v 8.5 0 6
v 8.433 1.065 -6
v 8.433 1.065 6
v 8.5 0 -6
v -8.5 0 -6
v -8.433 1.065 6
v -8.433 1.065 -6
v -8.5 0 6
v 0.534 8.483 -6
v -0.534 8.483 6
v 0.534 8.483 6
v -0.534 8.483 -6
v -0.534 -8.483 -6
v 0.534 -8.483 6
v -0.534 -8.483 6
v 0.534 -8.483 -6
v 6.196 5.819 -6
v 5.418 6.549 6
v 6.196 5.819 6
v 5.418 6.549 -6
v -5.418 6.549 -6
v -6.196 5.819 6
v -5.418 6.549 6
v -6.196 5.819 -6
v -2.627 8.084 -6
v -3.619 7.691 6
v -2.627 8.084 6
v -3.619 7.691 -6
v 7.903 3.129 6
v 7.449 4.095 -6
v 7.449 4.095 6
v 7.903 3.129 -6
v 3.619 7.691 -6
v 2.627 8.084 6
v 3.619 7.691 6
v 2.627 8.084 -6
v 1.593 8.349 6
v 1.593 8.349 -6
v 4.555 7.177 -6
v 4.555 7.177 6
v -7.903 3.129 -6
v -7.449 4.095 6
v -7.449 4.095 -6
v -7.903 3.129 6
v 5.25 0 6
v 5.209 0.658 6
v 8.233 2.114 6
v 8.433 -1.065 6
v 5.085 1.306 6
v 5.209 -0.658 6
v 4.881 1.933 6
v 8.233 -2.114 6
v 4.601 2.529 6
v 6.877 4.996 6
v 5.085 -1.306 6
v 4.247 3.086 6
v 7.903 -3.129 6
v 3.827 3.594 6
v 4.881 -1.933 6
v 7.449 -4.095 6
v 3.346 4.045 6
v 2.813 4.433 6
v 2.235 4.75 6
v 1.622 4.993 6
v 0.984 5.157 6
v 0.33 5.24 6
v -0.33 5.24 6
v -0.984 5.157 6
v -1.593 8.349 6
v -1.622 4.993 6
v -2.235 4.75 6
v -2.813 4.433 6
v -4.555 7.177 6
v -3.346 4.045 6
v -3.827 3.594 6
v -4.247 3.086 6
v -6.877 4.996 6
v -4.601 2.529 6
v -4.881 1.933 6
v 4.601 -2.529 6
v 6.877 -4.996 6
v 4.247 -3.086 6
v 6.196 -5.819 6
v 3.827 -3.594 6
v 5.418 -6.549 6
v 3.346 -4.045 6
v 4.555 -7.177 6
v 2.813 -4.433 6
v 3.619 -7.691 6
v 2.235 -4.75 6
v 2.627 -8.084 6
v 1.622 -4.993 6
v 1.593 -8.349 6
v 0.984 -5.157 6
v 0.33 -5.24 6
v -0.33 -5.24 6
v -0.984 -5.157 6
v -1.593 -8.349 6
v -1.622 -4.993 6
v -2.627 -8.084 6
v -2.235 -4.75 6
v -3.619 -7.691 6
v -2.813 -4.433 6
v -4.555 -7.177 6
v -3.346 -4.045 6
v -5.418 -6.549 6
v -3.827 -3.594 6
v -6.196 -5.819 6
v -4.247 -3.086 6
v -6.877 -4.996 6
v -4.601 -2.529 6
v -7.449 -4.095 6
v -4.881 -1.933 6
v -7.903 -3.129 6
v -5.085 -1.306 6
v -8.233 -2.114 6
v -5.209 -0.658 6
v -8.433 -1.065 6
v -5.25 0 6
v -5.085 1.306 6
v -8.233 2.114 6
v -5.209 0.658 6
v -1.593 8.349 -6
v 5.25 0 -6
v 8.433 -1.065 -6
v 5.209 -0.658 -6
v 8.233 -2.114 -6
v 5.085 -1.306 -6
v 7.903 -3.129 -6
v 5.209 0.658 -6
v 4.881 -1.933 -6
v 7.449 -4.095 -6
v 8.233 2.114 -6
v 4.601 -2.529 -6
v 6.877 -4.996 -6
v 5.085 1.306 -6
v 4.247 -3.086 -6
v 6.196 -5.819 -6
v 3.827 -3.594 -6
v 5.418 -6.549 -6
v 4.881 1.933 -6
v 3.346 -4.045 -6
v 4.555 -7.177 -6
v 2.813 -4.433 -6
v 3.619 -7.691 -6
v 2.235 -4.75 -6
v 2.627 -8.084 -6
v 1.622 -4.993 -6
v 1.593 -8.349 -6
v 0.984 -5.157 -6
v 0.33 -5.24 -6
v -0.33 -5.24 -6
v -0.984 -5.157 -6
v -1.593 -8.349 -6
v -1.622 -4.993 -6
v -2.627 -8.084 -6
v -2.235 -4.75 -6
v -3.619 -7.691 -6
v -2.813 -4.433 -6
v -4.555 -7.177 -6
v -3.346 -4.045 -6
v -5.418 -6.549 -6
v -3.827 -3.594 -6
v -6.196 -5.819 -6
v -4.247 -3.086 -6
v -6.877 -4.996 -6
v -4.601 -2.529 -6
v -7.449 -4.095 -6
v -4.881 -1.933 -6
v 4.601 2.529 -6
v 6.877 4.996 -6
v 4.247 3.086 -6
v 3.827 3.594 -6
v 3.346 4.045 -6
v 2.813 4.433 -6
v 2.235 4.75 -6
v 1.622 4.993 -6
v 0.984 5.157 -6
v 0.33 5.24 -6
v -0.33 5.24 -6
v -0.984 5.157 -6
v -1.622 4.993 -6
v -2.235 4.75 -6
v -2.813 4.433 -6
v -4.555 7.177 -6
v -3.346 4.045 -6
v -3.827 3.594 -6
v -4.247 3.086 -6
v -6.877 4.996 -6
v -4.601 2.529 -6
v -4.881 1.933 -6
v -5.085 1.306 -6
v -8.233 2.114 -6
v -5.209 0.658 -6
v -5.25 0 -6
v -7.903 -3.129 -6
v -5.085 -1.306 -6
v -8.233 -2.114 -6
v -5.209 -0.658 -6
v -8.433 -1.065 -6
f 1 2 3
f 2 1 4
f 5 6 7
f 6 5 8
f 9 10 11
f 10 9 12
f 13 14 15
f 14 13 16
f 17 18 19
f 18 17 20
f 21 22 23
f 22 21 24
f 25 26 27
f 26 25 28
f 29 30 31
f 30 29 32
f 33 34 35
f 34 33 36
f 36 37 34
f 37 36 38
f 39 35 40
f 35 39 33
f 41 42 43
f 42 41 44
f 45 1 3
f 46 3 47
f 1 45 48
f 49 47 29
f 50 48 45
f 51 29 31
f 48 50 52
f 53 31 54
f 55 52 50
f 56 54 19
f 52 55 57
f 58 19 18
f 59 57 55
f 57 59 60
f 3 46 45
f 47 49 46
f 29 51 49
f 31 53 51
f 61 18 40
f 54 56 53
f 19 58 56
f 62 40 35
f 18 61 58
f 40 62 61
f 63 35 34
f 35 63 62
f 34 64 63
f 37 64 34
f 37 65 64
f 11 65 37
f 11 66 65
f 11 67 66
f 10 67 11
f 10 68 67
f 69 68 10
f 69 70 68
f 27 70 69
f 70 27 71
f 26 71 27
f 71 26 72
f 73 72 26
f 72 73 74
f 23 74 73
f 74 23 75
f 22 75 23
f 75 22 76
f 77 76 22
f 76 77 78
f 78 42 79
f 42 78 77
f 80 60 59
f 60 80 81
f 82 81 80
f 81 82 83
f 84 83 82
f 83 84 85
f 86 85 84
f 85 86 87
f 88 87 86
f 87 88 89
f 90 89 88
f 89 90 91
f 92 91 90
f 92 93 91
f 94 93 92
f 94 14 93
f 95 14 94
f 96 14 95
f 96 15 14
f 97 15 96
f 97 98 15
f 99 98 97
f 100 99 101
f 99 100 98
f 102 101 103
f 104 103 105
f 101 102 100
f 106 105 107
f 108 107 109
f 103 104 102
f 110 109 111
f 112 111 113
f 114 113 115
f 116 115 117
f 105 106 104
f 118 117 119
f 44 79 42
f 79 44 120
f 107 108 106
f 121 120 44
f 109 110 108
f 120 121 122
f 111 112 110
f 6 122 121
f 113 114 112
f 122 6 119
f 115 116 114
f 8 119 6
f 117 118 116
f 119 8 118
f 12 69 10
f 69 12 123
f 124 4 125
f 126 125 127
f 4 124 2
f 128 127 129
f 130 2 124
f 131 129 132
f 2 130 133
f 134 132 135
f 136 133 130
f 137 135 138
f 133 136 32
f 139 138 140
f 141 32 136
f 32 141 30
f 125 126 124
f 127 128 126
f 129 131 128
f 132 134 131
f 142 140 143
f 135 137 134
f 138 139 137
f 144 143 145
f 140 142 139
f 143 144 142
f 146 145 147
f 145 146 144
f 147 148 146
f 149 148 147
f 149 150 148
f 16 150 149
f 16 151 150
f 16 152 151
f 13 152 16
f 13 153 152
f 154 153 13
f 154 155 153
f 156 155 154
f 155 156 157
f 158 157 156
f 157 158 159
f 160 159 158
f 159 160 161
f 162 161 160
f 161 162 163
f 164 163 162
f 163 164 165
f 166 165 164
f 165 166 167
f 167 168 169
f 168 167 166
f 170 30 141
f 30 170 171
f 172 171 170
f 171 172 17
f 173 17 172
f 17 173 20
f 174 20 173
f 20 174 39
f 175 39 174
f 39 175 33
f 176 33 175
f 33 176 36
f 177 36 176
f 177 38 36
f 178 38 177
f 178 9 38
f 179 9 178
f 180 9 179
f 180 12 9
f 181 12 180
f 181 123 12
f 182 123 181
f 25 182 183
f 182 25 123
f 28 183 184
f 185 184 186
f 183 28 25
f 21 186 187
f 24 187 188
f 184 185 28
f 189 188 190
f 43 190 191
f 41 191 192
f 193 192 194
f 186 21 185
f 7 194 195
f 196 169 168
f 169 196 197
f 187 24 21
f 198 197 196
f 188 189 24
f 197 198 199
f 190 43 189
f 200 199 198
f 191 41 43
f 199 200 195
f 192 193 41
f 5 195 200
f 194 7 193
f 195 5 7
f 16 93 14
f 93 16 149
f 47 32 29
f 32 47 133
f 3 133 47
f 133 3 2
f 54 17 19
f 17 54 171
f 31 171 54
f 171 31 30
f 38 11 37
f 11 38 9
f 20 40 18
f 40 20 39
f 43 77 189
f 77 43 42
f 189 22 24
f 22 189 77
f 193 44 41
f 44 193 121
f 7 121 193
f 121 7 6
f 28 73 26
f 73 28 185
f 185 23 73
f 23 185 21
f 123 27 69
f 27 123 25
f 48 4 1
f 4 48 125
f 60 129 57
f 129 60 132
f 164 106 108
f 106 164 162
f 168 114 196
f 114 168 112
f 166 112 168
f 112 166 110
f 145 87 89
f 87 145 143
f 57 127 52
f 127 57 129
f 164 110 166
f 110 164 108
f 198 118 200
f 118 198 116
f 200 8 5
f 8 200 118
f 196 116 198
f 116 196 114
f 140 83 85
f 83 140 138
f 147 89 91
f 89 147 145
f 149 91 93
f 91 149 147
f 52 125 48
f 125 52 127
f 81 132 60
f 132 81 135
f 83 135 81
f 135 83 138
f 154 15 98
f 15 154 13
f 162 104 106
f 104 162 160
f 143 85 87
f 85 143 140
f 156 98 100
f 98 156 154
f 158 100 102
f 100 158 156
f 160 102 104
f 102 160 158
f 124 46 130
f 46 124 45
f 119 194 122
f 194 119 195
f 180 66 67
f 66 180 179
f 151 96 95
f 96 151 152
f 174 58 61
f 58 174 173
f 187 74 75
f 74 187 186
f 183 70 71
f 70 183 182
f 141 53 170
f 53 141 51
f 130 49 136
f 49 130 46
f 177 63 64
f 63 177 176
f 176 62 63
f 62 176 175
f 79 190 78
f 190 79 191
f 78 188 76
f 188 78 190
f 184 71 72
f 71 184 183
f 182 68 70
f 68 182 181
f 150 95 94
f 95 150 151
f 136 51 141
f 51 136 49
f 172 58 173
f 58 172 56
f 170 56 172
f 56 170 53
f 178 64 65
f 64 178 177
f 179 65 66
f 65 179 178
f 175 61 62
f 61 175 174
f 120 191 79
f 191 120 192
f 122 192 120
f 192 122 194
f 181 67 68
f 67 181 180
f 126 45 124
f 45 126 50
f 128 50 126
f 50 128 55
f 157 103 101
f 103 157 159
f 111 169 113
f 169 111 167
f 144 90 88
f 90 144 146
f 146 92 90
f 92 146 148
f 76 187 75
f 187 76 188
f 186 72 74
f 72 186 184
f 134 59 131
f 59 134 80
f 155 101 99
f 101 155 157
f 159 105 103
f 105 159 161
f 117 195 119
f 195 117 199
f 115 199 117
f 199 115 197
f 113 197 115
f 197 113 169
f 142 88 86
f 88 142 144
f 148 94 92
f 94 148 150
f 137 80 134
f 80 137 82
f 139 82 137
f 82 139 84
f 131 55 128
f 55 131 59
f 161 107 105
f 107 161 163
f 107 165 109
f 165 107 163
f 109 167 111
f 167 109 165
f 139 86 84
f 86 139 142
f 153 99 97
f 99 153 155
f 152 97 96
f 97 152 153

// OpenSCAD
$fn = 50;


difference() {
	union() {
		translate(v = [0, 0, -6.0000000000]) {
			cylinder(h = 12, r = 8.5000000000);
		}
	}
	union() {
		translate(v = [0, 0, -100.0000000000]) {
			cylinder(h = 200, r = 5.2500000000);
		}
	}
}
